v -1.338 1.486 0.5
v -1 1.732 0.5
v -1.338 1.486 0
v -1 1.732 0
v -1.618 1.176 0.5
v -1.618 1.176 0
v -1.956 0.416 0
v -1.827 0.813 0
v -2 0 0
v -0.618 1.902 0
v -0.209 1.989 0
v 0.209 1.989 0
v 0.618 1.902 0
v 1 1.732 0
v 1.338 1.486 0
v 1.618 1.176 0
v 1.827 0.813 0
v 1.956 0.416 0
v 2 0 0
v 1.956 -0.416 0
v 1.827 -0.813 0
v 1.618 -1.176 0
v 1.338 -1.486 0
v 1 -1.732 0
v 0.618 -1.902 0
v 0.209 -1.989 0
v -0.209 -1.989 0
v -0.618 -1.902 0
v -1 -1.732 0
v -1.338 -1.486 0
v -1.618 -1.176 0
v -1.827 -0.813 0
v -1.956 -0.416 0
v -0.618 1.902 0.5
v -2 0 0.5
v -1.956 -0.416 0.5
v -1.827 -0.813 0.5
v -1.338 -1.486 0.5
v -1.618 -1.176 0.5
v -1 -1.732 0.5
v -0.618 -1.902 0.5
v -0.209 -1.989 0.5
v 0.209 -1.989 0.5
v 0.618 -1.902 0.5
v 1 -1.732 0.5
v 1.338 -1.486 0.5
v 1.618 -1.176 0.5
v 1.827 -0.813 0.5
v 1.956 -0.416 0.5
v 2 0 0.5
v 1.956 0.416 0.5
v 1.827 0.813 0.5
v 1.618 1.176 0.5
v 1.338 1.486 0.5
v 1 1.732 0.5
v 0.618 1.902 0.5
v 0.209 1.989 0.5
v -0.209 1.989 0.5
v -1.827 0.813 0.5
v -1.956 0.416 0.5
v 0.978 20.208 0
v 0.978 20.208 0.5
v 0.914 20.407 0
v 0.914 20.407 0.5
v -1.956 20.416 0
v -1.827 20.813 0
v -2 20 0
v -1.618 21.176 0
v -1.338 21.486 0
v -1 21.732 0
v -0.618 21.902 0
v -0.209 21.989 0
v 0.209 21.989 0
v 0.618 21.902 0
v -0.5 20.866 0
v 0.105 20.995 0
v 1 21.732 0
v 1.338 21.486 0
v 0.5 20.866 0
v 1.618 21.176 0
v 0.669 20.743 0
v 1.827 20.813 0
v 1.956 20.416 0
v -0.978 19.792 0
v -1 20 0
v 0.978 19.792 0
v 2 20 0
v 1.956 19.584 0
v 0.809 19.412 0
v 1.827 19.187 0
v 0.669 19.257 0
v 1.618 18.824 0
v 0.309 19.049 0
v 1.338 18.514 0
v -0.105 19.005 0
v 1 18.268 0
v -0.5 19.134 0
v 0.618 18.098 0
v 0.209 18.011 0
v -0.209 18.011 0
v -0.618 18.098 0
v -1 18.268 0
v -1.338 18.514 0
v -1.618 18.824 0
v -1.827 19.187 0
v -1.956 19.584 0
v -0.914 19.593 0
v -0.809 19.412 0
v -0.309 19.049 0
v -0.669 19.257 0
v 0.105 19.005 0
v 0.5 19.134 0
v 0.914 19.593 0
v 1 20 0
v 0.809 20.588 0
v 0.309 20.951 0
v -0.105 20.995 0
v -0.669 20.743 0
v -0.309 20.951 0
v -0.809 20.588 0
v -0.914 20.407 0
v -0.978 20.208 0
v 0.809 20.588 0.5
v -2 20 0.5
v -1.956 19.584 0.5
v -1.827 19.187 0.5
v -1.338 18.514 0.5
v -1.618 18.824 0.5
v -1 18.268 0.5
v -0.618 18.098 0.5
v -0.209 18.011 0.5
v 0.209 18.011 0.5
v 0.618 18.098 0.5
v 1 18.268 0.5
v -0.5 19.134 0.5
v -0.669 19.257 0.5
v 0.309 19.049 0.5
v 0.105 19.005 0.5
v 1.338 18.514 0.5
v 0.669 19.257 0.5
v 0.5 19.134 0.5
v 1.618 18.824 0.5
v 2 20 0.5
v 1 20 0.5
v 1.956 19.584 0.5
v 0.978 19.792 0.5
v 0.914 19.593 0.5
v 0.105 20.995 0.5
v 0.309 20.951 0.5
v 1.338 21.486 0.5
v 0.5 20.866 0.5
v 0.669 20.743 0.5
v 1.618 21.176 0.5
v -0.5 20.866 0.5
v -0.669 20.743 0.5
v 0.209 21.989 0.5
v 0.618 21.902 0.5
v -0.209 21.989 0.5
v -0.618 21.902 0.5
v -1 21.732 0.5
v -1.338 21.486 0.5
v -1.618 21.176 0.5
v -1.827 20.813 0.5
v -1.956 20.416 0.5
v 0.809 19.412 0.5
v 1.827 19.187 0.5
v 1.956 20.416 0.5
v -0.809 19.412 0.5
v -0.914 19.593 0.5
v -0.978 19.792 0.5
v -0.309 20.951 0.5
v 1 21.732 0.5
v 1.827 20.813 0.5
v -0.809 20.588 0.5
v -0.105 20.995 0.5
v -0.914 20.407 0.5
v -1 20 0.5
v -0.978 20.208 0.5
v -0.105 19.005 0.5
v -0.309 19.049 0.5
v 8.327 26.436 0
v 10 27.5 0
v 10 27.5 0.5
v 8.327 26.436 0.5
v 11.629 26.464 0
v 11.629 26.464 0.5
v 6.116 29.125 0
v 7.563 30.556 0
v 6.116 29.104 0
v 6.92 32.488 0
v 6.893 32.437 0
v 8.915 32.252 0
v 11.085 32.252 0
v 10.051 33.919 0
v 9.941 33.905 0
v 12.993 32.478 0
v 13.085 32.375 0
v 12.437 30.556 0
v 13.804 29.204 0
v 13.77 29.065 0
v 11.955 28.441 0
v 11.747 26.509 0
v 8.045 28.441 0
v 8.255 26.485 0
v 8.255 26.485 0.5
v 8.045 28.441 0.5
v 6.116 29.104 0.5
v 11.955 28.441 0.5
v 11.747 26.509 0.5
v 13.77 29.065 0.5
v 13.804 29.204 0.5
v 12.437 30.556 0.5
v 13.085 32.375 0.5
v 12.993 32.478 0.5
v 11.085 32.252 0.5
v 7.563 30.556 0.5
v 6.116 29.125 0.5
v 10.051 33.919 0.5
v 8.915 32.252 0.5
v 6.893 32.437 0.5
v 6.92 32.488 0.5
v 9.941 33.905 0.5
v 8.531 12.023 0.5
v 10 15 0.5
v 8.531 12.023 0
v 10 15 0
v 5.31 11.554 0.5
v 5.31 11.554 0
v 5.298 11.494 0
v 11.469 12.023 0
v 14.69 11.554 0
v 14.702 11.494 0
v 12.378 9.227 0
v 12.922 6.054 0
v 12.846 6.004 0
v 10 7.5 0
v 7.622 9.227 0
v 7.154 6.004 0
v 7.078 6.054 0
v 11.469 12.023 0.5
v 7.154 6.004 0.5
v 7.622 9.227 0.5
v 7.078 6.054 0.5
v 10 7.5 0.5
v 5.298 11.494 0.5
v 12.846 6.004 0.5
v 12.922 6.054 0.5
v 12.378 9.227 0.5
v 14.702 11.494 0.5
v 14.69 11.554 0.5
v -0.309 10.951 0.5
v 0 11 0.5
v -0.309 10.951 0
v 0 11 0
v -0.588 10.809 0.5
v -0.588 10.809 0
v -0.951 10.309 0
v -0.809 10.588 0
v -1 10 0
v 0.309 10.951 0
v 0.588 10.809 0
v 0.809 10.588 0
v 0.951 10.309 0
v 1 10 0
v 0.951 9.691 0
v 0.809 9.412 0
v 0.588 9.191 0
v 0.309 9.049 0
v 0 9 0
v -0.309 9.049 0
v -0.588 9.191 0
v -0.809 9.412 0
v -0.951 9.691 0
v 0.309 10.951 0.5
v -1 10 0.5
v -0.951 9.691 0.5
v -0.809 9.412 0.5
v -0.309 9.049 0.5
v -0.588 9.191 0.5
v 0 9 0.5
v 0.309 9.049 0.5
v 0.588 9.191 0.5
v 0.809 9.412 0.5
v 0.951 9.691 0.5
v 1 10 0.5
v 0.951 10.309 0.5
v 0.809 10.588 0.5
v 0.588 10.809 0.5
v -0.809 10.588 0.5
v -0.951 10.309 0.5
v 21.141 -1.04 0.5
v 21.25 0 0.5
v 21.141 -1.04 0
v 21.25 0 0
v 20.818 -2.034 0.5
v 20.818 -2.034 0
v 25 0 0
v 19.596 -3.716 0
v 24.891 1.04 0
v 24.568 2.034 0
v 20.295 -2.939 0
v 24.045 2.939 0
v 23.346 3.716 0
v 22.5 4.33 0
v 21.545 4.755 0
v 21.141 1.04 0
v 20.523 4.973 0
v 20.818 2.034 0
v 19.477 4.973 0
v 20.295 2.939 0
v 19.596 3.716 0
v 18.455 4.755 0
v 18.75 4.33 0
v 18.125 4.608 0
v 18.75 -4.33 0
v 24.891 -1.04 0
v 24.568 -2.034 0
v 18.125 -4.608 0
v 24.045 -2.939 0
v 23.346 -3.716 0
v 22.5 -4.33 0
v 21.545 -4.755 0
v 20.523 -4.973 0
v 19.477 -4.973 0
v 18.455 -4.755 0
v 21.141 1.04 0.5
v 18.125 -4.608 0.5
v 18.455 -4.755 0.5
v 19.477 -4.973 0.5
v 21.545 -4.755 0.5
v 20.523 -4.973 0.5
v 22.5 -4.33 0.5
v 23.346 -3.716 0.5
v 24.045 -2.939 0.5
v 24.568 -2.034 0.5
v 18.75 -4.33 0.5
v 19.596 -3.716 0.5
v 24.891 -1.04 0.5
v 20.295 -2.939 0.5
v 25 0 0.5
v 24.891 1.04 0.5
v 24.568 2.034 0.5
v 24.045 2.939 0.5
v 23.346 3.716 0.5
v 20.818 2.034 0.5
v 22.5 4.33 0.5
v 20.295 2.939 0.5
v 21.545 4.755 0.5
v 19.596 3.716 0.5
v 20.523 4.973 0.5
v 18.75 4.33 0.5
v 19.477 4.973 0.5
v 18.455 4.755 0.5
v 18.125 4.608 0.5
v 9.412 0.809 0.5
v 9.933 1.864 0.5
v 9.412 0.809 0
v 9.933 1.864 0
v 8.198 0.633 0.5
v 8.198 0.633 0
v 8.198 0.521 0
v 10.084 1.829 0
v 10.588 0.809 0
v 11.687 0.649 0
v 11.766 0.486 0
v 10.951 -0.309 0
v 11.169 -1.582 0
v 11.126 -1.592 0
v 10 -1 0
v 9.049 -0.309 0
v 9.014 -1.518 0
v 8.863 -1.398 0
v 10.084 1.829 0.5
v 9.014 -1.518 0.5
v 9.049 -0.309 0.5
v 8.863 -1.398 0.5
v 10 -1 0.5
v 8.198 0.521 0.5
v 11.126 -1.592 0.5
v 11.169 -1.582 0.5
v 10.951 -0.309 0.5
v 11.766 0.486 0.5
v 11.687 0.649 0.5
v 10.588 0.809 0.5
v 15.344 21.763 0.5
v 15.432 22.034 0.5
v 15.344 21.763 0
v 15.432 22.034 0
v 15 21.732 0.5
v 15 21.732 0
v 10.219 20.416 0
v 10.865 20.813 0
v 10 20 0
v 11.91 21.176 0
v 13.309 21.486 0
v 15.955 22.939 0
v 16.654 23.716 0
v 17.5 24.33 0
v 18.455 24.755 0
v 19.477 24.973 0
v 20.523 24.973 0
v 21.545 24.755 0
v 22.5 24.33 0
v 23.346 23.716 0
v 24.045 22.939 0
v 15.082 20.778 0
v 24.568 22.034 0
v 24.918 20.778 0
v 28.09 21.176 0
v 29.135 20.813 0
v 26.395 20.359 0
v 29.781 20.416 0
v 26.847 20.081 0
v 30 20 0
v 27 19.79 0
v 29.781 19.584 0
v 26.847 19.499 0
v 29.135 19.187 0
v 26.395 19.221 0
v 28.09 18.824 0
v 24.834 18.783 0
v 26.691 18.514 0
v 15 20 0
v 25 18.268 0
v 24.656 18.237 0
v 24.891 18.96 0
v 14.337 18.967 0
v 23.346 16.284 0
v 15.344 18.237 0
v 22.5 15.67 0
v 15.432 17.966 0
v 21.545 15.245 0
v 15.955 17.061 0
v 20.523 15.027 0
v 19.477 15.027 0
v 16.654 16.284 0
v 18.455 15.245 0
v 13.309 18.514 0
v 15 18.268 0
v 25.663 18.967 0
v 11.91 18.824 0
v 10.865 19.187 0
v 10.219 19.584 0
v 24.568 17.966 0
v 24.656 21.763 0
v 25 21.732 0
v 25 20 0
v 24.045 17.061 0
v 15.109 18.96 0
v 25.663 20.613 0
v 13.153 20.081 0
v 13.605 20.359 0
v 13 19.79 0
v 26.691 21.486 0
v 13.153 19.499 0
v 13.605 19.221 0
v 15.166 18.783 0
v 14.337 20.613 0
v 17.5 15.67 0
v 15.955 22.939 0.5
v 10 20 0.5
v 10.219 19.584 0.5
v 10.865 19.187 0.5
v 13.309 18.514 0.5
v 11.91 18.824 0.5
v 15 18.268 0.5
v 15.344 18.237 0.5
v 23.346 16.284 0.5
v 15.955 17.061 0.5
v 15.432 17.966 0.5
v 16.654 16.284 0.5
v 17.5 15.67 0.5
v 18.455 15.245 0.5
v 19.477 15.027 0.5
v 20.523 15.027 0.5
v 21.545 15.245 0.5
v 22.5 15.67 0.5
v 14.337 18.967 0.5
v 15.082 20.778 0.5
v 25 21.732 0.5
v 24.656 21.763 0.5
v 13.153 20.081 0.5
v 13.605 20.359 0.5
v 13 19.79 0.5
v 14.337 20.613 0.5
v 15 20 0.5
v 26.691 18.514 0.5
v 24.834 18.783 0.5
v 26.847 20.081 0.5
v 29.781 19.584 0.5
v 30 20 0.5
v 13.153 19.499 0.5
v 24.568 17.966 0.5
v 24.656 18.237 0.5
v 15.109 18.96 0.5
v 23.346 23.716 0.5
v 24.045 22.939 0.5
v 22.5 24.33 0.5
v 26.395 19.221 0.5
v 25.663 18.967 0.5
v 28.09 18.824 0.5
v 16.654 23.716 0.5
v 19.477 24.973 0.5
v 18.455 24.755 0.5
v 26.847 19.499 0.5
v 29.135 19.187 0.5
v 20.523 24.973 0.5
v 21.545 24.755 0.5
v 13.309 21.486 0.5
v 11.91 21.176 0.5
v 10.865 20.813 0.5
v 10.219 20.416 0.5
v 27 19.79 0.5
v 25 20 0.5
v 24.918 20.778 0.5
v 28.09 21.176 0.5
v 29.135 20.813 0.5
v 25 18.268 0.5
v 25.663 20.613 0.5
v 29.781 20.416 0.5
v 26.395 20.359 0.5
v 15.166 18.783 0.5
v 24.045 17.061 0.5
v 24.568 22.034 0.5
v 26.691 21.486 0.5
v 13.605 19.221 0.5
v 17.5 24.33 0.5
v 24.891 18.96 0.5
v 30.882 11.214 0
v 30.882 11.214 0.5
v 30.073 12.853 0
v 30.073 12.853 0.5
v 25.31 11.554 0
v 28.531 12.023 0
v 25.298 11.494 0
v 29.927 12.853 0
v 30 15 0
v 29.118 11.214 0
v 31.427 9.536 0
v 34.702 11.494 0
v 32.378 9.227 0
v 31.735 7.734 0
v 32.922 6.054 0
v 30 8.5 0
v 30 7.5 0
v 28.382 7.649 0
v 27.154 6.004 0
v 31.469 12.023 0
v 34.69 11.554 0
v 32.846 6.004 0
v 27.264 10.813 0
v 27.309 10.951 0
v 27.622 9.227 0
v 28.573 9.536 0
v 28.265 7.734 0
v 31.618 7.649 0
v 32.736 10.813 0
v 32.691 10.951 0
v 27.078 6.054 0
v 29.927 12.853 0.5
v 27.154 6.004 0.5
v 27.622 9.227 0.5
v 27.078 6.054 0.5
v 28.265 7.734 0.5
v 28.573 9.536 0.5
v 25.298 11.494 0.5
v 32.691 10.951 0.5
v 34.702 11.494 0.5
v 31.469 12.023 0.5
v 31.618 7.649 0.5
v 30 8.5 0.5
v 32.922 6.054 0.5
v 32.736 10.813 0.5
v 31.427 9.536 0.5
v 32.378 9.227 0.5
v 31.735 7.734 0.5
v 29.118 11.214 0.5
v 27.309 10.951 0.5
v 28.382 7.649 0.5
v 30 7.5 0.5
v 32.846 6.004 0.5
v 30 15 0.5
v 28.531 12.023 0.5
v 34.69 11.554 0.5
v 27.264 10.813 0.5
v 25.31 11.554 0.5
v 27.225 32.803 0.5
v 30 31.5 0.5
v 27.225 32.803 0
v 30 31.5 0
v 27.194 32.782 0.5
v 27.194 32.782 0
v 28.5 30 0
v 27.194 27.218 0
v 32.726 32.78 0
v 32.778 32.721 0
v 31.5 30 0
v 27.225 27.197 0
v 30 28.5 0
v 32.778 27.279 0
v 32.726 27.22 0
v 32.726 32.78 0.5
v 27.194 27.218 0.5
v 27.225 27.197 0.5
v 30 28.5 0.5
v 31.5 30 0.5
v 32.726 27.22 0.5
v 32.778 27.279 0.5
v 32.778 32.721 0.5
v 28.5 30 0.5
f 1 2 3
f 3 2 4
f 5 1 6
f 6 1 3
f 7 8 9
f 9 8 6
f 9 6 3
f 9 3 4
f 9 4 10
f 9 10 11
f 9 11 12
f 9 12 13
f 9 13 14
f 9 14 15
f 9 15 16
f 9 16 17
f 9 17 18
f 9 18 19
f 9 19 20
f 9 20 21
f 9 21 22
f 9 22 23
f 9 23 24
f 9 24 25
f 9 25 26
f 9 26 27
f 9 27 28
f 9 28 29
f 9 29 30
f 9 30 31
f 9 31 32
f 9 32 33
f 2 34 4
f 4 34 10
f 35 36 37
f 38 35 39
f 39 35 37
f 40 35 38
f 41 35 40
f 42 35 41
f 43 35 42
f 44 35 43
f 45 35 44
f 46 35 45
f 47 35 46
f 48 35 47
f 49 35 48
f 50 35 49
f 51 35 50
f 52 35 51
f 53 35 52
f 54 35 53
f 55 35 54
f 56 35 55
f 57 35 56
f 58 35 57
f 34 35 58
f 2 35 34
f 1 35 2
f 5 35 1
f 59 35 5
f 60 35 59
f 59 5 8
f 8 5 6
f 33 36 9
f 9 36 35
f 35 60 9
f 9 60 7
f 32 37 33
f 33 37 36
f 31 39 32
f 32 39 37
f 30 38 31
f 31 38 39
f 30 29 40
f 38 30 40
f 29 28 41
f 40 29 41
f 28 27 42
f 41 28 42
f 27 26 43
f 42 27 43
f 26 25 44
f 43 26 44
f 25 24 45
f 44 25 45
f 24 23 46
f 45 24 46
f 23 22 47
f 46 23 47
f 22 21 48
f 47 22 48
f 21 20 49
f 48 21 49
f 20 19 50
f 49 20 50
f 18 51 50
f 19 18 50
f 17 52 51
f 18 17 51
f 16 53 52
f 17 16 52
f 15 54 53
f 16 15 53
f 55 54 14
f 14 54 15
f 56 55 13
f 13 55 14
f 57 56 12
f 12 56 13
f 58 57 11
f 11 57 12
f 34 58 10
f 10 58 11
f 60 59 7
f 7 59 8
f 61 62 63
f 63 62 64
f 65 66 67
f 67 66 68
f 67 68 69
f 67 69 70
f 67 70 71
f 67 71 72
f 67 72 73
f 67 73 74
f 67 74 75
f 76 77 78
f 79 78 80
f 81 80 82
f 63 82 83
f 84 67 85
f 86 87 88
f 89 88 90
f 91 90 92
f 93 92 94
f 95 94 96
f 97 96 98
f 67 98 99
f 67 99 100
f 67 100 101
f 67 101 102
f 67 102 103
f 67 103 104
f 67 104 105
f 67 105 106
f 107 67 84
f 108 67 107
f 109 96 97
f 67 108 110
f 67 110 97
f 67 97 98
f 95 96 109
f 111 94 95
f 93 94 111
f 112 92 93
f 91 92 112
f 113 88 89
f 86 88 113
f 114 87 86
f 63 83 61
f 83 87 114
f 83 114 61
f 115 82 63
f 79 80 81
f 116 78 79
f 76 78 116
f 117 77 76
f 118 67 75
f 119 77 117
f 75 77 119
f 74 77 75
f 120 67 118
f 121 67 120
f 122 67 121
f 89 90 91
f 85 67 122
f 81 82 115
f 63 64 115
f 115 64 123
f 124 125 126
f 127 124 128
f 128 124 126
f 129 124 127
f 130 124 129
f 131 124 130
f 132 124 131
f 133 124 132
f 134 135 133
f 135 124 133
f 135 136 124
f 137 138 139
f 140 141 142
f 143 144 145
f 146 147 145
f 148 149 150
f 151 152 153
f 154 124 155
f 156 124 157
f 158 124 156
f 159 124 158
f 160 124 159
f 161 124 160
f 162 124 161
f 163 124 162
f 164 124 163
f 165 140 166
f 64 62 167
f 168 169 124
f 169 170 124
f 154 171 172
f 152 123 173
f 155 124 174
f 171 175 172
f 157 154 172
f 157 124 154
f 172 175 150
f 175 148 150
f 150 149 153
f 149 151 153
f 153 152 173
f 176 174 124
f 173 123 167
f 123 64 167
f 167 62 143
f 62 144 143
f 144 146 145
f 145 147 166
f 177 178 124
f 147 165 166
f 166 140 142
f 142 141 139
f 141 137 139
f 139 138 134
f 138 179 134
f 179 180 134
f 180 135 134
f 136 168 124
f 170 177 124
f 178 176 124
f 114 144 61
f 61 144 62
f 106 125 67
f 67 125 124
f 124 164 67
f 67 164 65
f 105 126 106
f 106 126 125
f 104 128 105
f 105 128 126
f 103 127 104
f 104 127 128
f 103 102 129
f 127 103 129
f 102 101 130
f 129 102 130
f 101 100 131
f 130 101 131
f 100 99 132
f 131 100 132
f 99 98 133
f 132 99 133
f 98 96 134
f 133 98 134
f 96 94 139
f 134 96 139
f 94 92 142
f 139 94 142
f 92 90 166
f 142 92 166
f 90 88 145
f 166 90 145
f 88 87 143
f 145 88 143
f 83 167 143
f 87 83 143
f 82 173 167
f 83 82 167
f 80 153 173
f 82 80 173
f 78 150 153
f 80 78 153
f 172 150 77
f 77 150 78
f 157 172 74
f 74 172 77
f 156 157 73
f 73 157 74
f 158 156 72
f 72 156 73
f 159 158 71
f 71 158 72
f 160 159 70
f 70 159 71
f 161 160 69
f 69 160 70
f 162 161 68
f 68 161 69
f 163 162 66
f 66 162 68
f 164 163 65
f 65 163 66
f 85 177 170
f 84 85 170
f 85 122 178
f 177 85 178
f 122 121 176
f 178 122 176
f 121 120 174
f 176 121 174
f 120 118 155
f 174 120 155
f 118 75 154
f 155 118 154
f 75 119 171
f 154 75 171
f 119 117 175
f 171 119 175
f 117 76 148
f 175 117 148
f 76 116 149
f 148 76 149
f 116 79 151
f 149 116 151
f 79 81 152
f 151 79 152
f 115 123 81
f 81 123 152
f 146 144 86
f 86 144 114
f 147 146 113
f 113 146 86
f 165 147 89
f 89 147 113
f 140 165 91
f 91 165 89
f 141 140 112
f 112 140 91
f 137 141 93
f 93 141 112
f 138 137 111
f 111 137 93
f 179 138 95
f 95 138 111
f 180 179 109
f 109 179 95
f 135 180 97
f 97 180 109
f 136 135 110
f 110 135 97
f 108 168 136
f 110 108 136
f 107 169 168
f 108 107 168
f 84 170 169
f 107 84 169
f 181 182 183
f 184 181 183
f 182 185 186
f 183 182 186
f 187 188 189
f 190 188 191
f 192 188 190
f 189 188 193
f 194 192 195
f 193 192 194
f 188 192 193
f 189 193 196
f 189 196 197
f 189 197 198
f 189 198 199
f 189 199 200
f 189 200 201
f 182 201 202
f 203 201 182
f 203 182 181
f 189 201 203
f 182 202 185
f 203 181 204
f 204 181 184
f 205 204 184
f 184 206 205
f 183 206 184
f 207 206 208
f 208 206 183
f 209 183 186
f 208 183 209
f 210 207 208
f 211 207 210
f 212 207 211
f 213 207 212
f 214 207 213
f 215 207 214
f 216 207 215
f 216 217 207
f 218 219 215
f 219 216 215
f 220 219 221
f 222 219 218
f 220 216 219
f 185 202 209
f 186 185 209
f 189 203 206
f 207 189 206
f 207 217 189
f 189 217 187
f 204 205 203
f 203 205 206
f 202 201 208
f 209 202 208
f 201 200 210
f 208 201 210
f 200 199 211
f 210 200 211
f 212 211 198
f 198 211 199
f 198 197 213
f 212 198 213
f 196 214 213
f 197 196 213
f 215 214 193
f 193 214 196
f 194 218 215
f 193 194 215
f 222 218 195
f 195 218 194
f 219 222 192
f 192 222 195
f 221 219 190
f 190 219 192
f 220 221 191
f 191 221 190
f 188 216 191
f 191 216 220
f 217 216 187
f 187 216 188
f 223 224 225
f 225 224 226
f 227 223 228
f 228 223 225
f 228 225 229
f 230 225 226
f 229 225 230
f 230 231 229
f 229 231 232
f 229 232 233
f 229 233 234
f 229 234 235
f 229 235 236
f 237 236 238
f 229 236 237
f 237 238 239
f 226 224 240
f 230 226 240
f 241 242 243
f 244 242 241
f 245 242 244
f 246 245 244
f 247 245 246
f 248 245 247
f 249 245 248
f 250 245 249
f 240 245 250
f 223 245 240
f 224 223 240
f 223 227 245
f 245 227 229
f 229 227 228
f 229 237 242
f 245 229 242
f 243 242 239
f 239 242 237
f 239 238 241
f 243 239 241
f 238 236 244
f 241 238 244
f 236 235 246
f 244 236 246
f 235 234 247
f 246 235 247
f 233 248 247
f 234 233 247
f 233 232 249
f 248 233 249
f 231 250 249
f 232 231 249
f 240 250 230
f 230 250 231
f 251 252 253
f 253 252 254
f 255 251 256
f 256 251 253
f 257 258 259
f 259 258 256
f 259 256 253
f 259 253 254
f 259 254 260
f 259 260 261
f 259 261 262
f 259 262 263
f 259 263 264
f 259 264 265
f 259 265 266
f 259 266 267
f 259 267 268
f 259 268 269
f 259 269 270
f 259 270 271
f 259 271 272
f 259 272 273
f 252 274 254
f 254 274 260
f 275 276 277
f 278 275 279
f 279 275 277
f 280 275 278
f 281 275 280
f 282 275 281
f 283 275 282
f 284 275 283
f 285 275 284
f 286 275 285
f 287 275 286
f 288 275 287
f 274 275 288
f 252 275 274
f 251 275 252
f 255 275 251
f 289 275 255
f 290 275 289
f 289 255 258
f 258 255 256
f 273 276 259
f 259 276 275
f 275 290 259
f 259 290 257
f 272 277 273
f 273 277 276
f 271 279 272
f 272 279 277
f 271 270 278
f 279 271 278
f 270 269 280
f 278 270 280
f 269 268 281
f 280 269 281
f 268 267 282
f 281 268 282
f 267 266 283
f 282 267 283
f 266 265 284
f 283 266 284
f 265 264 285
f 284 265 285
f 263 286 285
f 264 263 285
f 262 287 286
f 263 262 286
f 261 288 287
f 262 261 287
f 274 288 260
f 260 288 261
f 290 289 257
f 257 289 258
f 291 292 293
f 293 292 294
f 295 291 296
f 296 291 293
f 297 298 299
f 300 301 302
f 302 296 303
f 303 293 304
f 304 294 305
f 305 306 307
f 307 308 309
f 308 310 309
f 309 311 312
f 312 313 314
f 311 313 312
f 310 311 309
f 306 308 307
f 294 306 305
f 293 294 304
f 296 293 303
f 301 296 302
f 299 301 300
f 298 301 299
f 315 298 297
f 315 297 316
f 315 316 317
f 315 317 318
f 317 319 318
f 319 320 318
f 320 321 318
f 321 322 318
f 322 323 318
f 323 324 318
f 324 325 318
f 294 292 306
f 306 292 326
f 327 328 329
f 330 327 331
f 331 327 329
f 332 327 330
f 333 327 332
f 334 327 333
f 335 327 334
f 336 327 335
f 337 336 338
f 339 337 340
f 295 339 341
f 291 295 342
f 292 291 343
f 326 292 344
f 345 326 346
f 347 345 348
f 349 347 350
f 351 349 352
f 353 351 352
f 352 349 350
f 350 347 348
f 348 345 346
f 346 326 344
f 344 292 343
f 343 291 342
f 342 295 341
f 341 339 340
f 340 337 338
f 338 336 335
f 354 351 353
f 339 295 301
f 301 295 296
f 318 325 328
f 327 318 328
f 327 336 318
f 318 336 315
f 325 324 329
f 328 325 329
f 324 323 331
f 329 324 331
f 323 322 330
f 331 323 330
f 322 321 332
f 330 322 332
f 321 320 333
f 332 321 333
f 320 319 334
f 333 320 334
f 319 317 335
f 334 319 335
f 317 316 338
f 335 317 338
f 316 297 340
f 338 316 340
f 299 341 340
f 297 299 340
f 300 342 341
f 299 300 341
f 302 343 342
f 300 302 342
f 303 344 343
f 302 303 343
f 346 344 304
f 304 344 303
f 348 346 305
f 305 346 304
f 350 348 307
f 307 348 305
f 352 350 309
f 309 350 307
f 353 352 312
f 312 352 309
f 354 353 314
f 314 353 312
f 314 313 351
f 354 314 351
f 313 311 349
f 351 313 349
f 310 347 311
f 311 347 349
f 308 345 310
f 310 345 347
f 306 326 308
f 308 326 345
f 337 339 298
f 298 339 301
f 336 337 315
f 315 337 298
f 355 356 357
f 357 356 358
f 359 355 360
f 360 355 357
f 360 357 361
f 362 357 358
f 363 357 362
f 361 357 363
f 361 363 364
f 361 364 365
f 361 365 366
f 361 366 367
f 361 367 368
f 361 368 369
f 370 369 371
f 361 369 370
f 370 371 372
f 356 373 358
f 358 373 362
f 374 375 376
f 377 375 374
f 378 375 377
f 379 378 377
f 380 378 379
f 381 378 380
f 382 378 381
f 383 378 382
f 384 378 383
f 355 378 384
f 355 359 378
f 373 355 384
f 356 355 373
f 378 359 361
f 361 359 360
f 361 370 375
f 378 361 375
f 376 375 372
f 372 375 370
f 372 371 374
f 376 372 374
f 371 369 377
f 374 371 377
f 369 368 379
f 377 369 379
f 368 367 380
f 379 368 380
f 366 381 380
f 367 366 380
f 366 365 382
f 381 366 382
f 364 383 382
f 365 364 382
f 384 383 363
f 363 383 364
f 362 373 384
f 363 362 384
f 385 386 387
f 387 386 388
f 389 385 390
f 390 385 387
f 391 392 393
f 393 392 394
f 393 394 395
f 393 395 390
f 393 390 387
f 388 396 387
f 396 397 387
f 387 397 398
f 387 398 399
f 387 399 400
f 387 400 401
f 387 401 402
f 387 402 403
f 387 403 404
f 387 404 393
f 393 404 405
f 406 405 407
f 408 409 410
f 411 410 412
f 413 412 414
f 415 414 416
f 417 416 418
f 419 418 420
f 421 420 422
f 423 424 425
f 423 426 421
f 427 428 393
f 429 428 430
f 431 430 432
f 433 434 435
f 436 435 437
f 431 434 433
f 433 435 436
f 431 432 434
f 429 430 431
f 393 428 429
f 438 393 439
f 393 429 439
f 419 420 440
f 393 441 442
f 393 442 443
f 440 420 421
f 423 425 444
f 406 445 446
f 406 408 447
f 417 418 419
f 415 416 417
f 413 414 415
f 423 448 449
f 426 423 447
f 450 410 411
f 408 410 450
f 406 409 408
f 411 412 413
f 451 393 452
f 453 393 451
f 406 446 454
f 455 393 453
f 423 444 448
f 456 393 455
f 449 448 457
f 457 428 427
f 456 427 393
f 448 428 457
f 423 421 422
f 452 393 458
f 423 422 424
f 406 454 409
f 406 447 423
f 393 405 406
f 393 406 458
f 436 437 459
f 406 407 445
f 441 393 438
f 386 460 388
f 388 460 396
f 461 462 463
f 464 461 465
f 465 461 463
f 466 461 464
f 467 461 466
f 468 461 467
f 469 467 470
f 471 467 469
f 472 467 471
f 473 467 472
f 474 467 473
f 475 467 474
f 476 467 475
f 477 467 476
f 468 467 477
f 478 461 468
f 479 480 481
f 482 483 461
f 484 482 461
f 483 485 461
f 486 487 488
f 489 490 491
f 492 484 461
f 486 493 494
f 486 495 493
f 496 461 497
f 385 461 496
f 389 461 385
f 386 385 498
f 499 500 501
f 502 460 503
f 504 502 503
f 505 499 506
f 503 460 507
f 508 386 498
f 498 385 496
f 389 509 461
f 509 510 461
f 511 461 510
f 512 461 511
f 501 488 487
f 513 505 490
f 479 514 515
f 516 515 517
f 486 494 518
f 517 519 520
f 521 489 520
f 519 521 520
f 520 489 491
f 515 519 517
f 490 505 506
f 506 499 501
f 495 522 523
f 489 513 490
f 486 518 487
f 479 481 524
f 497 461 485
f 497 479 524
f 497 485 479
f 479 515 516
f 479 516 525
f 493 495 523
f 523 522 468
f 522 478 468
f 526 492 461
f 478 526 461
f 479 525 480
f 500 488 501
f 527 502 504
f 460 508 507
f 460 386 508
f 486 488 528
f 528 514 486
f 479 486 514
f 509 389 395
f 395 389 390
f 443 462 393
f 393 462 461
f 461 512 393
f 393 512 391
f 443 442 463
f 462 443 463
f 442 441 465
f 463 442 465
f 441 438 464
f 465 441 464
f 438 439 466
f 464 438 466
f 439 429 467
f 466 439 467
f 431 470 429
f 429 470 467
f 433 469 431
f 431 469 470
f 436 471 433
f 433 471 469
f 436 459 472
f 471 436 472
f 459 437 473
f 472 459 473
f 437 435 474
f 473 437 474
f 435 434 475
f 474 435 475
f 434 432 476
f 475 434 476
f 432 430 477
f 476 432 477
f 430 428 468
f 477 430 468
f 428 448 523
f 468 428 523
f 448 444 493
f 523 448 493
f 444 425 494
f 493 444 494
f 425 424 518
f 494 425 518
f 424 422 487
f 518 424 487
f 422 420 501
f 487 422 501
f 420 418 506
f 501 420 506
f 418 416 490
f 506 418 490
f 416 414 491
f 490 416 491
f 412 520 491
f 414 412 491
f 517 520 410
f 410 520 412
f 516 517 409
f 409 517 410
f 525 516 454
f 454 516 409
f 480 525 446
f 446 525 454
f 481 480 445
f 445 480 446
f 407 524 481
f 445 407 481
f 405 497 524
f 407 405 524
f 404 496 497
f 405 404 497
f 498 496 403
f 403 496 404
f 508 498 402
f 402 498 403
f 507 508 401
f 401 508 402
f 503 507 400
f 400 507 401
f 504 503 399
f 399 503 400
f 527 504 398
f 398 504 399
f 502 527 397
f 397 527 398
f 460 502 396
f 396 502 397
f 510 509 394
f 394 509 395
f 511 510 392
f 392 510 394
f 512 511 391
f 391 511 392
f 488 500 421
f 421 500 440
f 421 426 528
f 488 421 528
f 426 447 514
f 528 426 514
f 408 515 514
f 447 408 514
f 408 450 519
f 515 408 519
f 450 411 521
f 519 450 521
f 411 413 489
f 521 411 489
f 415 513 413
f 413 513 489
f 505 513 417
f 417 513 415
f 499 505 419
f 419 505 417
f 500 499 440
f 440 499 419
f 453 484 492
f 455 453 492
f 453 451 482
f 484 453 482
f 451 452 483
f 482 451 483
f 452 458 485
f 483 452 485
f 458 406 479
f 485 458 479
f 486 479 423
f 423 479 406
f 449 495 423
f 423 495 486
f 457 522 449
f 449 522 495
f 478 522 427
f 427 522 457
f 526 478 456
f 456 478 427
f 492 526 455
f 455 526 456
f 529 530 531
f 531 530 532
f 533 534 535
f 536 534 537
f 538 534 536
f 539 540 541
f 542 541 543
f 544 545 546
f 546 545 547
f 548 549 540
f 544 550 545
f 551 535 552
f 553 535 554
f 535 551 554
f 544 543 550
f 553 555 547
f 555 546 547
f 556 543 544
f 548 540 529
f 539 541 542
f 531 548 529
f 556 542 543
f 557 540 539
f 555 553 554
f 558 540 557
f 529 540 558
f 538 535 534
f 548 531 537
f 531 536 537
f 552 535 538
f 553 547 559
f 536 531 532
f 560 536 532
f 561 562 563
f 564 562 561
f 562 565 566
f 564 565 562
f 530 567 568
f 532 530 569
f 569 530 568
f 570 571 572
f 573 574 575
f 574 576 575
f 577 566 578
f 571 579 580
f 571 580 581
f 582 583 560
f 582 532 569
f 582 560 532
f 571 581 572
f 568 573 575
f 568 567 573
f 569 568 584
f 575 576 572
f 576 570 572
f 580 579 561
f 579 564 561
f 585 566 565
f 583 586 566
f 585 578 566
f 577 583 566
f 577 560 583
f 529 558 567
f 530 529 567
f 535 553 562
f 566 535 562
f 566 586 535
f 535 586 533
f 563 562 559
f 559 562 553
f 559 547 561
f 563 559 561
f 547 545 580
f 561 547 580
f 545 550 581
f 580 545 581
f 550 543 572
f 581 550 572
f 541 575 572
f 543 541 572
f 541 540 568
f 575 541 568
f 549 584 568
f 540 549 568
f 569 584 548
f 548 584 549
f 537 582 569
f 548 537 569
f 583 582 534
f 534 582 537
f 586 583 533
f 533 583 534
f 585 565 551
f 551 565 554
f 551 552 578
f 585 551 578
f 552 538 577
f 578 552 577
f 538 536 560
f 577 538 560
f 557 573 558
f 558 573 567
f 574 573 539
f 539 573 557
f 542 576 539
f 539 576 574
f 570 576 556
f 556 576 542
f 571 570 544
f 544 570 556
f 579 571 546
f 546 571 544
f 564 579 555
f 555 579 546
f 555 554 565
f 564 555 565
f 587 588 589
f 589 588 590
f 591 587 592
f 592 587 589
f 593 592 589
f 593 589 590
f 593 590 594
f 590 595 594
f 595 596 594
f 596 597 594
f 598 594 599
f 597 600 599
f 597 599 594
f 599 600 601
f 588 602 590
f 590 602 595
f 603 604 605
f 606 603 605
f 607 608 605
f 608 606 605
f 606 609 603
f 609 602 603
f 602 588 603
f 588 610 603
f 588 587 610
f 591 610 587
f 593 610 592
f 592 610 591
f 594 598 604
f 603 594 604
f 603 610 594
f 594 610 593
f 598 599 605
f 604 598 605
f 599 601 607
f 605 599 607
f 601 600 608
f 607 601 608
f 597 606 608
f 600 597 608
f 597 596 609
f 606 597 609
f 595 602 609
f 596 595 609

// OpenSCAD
linear_extrude(height=0.5) union()
{
  translate([ 0, 0])  dot(2, $fn=30);
  translate([ 0,10])  dot(1, $fn=20);
  translate([ 0,20])  dot(2, 1, $fn=30);
  translate([20, 0])  moon(5, 5, $fn=30);
  translate([20,20])  saturn(5, 10, 7, $fn=30);
  translate([10,10])  star(5, 2.5);
  translate([10,30])  star(4, 2.5, 7);
  translate([30,10])  difference() { star(5, 2.5); star(3, 1.5); }
  translate([30,30])  star(4, 1.5, 4);
  translate([10, 0])  star(2, 1);
}



//////////////////////////////////////////////////////////////////////
// star
//    radius1 -- outer radius
//    radius2 -- inner radius
//    arms    -- number of arms
module star(radius1, radius2, arms=5)
{
    arc=360/arms;
    harc=arc/2;
    xcood=radius1*sin(harc);
    ycood=radius1*cos(harc);

    difference()
    {
        circle(radius1);
        for(i=[0:(arms-1)])
        {
            //  weird -- if "i*arc+harc", arms=8 fails
            rotate(i*arc)
                polygon(points=[ [0, -radius2],
                                 [-xcood, -ycood],
                                 [0, -2*radius1], 
                                 [+xcood, -ycood] ],
                        paths=[0:3]);
        }
    }
}

//////////////////////////////////////////////////////////////////////
// simple dot/circle
//    radius -- outer radius
//    thick  -- thickness of circle (0 for filled)
//    $fn    -- smoothness of circle
module dot(radius, thick=0)
{
    difference()
    {
        circle(radius);
        if (thick > 0) circle(radius - thick);
    }
}

//////////////////////////////////////////////////////////////////////
// saturn (dot with ring)
//    radius -- outer radius of planet
//    ring1  -- outer radius of ring
//    ring2  -- inner radius of ring
//    $fn    -- smoothness of circle
module saturn(radius, ring1, ring2)
{
    union()
    {
        circle(radius);
        difference()
        {
            scale([1, 0.2]) circle(ring1);
            translate([0, -0.03*ring2]) scale([1, 0.2])
                circle(ring2);
        }
    }
}

//////////////////////////////////////////////////////////////////////
// "classic" moon shape
//    radius1 -- outer radius of circle
//    radius2 -- radius of cutout circle
//    skew    -- offset factor of cutout
//    $fn     -- smoothness of circles
module moon(radius1, radius2, skew=0.75)
{
    difference()
    {
        circle(radius1);
        translate([-radius2*skew,0]) circle(radius2);
    }
}
